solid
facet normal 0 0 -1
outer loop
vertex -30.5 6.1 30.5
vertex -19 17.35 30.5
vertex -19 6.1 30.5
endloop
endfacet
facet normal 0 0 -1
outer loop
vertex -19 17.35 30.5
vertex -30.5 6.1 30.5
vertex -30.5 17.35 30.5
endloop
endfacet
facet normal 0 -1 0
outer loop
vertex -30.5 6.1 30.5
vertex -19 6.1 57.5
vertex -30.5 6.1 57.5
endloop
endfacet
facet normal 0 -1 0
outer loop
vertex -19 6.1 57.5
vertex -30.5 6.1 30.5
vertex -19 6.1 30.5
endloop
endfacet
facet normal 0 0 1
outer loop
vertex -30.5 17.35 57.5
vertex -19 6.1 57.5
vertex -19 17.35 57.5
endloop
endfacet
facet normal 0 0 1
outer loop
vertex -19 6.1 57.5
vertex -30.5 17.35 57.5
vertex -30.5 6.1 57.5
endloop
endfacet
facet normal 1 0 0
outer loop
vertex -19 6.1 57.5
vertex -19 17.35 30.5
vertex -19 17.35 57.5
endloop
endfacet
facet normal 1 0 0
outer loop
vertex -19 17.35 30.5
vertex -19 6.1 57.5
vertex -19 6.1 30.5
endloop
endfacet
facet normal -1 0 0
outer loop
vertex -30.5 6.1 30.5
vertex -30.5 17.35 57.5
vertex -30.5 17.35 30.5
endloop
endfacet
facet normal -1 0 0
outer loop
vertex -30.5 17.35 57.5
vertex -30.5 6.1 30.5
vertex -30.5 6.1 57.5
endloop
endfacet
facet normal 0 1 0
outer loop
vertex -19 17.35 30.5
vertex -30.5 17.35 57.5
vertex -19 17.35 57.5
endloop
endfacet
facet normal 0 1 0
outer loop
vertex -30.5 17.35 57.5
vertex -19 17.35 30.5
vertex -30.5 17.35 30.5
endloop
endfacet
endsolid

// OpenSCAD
// file: D:/Projects/assembly-workshop/outputs/Screen_Pi_Hue_SCR5-H_2026-10-30/checks/geometry.scad
// SCR5-G; mm; FRONT view: X right, Z up, Y into rack. Glass/plate front Y=0.
// Measured values: work/screen-5in/Dimensions.md. Physical fit/strength UNKNOWN.
part="plate";
DROP=0.45; // coupon winner can be substituted here; all three pins use this DROP
LIP=0.8; LIP_ON=true;
LIP_EDGES=[true,true,false,false]; // left,right,bottom,top; Brian: side lips only, cosmetic
FRAME_STEP=1.5; // measured glass-edge inset to metal LCD frame, left/right only
SHIM=0; // moves rear frame seat and plate-boss mating face back
$fn=48;
GCX=33; GCZ=41.5; PW=252; PH=88.8; PT=4;
GW=120.7; GH=77.2; CLEAR=0.2; WW=GW+2*CLEAR; WH=GH+2*CLEAR;
SEAT=13.3+SHIM; FT=3;
SO=[56.45,34]; BTN_X=[45.5,35.5,25.5];
PCB_TOP=38; GAP=0.10; LEAF_T=0.8;
HOLE=[3.4,40.3,44.7];
BX=[GCX-68,GCX+68]; BZ=[10,72];
// DSI connector X extent is unmeasured: conservative assumed 8 mm inward from PCB edge.
DSI=[GCX-60.5,9.1,GCZ-38+30,8,5.25,21];
module xz(y,d){translate([0,y+d,0])rotate([90,0,0])linear_extrude(d)children();}
// rr/rack_slots copied from SCR5-F; same exact slot centres, outline shifted -0.05 Z to centre 44.4.
module rr(w,h,r){hull()for(x=[-w/2+r,w/2-r],z=[-h/2+r,h/2-r])translate([x,z])circle(r=r);}
module rack_slots(){for(x=[-118.2625,118.2625],z=[6.323,38.127,50.773,82.577])translate([x,z])hull()for(dx=[-1.5,1.5])translate([dx,0])circle(d=7);}
module cyl_y(x,y,z,d,h){translate([x,y,z])rotate([-90,0,0])cylinder(d=d,h=h);}
module window_cut(){
  xz(-0.02,4.04)translate([GCX,GCZ])square([WW,WH],center=true);
  // 0.3 x 45-degree chamfer, square corners, front only.
  translate([GCX,0.3,GCZ])rotate([90,0,0])
    linear_extrude(height=0.3,scale=[(WW+0.6)/WW,(WH+0.6)/WH])square([WW,WH],center=true);
}
module lips(){
  // Cosmetic side ledges only; rear frame/standoffs set depth and retain the screen.
  if(LIP_ON)for(i=[0:3])if(LIP_EDGES[i]){
    if(i<2)translate([GCX+(i==0?-WW/2:WW/2-LIP),2.5,GCZ-GH/2+4])cube([LIP,0.8,GH-8]);
    else translate([GCX-GW/2+4,2.5,GCZ+(i==2?-WH/2:WH/2-LIP)])cube([GW-8,0.8,LIP]);
  }
}
// Leaf/nub/bump geometry copied from SCR5-WP-A, translated to this glass centre.
module leaves(){for(x=BTN_X)translate([GCX+x-1.5,0,GCZ]){
  translate([0,0,PCB_TOP+GAP+0.9+0.1])cube([3,11.8,LEAF_T]);
  translate([0,10.2,PCB_TOP+GAP])cube([3,1.4,1.0+LEAF_T/2]);
  translate([0,10.4,PCB_TOP+GAP+1.0+LEAF_T])cube([3,1.0,0.9]);
}}
module plate(){difference(){union(){
  difference(){xz(0,PT)translate([0,PH/2])rr(PW,PH,2.5);window_cut();}
  for(x=BX,z=BZ)cyl_y(x,3.9,z,8,SEAT-3.9);
  leaves(); lips();
 }
 xz(-0.02,4.04)rack_slots();
 for(x=BTN_X)translate([GCX+x-HOLE[0]/2,-0.02,GCZ+HOLE[1]])cube([HOLE[0],SEAT+FT+0.04,HOLE[2]-HOLE[1]]);
 // Printed-in screw pilots (no heat-set OD assumption): nominal M2.5, fit UNKNOWN.
 for(x=BX,z=BZ)cyl_y(x,SEAT-6,z,2.1,6.02);
 // Rear engraving, 0.5 deep, left field.
 xz(3.5,0.52)translate([-75,40])mirror([1,0])text("SCR5-G",size=6,halign="center",font="Liberation Sans:style=Bold");
}}
module frame_blank(){
  // C-shaped perimeter; no material across the board centre / touch FPC.
  xz(SEAT,FT)translate([GCX,GCZ])difference(){square([132,76],center=true);square([116,60],center=true);}
  for(sx=[-1,1],sz=[-1,1])cyl_y(GCX+sx*SO[0],SEAT,GCZ+sz*SO[1],9,FT);
  for(x=BX,z=BZ)hull(){cyl_y(x,SEAT,z,8,FT);cyl_y(GCX+(x<GCX?-62:62),SEAT,z,8,FT);}
}
module dsi_keepout(){translate([DSI[0]-3,DSI[1]-3,DSI[2]-3])cube([DSI[3]+6,DSI[4]+6,DSI[5]+6]);}
module ribbon_route(){
  // Open left/up corridor 18 mm wide; extends past top of plate.
  translate([GCX-84,6.1,GCZ-11])cube([18,24,65]);
  translate([GCX-84,6.1,GCZ-11])cube([32,24,27]);
}
module frame(){difference(){frame_blank();dsi_keepout();ribbon_route();
 for(sx=[-1,1],sz=[-1,1])cyl_y(GCX+sx*SO[0],SEAT-0.02,GCZ+sz*SO[1],2.8,FT+0.04);
 for(x=BX,z=BZ)cyl_y(x,SEAT-0.02,z,2.8,FT+0.04);
}}
// Pin polygon/cap/notch/dot design copied unchanged from SCR5-WP-A.
module pin(d,dots){s=2*d+0.5;difference(){union(){
 translate([-1.5,0,0])rotate([90,0,90])linear_extrude(3)polygon([
 [-s-0.02,40.5],[10.2,40.5],[10.2,41.0],[11.5,41.0],[11.5+2*d,41.0-d],[15,41.0-d],[15,44.5],[-s-0.02,44.5]]);
 translate([-2.5,-s-1.5,39.6])cube([5,1.5,5.8]);
 }for(i=[0:dots-1])translate([(i-(dots-1)/2)*1.4,-s-1.5-0.01,43.5])rotate([-90,0,0])cylinder(d=0.9,h=0.4);}}
module placed_pin(i){translate([GCX+BTN_X[i],0,GCZ])pin(DROP,i+1);}
// Measured layers: cover glass 0.9 + second glass 1.6, metal frame 3.0,
// open gap 2.0, PCB 1.6. Metal frame inset ~1.5 at LEFT/RIGHT only.
// PCB centred under glass and full metal-frame top/bottom extent remain UNKNOWN.
module glass(){translate([GCX-GW/2,0,GCZ-GH/2])cube([GW,2.5,GH]);}
module lcd(){
  translate([GCX-GW/2+FRAME_STEP,2.5,GCZ-GH/2])cube([GW-2*FRAME_STEP,3.0,GH]);
}
module pcb(){translate([GCX-60.5,7.5,GCZ-38])cube([121,1.6,76]);}
module standoffs(){for(sx=[-1,1],sz=[-1,1])difference(){cyl_y(GCX+sx*SO[0],9.1,GCZ+sz*SO[1],5.5,4.2);cyl_y(GCX+sx*SO[0],9.08,GCZ+sz*SO[1],2.5,4.24);}}
module buttons(){for(x=BTN_X){
 translate([GCX+x-3.5,9.1,GCZ+38-3.4])cube([7,3.6,2.4]);
 translate([GCX+x-1.5,9.1,GCZ+37])cube([3,3.6,1]);
}}
module dsi(){translate([DSI[0],DSI[1],DSI[2]])cube([DSI[3],DSI[4],DSI[5]]);}
module touch(){translate([GCX-10,9.1,GCZ-5])cube([20,2,10]);} // lateral extent unmeasured
module dummy(){glass();lcd();pcb();standoffs();buttons();dsi();touch();}
module assembly(){color("gray")plate();color("orange")frame();for(i=[0:2])color("cyan")placed_pin(i);color([0.2,0.3,0.4,0.4])dummy();}
// main file
include <D:/Projects/assembly-workshop/outputs/Screen_Pi_Hue_SCR5-H_2026-10-30/checks/geometry.scad>
intersection(){dsi_keepout();ribbon_route();}
